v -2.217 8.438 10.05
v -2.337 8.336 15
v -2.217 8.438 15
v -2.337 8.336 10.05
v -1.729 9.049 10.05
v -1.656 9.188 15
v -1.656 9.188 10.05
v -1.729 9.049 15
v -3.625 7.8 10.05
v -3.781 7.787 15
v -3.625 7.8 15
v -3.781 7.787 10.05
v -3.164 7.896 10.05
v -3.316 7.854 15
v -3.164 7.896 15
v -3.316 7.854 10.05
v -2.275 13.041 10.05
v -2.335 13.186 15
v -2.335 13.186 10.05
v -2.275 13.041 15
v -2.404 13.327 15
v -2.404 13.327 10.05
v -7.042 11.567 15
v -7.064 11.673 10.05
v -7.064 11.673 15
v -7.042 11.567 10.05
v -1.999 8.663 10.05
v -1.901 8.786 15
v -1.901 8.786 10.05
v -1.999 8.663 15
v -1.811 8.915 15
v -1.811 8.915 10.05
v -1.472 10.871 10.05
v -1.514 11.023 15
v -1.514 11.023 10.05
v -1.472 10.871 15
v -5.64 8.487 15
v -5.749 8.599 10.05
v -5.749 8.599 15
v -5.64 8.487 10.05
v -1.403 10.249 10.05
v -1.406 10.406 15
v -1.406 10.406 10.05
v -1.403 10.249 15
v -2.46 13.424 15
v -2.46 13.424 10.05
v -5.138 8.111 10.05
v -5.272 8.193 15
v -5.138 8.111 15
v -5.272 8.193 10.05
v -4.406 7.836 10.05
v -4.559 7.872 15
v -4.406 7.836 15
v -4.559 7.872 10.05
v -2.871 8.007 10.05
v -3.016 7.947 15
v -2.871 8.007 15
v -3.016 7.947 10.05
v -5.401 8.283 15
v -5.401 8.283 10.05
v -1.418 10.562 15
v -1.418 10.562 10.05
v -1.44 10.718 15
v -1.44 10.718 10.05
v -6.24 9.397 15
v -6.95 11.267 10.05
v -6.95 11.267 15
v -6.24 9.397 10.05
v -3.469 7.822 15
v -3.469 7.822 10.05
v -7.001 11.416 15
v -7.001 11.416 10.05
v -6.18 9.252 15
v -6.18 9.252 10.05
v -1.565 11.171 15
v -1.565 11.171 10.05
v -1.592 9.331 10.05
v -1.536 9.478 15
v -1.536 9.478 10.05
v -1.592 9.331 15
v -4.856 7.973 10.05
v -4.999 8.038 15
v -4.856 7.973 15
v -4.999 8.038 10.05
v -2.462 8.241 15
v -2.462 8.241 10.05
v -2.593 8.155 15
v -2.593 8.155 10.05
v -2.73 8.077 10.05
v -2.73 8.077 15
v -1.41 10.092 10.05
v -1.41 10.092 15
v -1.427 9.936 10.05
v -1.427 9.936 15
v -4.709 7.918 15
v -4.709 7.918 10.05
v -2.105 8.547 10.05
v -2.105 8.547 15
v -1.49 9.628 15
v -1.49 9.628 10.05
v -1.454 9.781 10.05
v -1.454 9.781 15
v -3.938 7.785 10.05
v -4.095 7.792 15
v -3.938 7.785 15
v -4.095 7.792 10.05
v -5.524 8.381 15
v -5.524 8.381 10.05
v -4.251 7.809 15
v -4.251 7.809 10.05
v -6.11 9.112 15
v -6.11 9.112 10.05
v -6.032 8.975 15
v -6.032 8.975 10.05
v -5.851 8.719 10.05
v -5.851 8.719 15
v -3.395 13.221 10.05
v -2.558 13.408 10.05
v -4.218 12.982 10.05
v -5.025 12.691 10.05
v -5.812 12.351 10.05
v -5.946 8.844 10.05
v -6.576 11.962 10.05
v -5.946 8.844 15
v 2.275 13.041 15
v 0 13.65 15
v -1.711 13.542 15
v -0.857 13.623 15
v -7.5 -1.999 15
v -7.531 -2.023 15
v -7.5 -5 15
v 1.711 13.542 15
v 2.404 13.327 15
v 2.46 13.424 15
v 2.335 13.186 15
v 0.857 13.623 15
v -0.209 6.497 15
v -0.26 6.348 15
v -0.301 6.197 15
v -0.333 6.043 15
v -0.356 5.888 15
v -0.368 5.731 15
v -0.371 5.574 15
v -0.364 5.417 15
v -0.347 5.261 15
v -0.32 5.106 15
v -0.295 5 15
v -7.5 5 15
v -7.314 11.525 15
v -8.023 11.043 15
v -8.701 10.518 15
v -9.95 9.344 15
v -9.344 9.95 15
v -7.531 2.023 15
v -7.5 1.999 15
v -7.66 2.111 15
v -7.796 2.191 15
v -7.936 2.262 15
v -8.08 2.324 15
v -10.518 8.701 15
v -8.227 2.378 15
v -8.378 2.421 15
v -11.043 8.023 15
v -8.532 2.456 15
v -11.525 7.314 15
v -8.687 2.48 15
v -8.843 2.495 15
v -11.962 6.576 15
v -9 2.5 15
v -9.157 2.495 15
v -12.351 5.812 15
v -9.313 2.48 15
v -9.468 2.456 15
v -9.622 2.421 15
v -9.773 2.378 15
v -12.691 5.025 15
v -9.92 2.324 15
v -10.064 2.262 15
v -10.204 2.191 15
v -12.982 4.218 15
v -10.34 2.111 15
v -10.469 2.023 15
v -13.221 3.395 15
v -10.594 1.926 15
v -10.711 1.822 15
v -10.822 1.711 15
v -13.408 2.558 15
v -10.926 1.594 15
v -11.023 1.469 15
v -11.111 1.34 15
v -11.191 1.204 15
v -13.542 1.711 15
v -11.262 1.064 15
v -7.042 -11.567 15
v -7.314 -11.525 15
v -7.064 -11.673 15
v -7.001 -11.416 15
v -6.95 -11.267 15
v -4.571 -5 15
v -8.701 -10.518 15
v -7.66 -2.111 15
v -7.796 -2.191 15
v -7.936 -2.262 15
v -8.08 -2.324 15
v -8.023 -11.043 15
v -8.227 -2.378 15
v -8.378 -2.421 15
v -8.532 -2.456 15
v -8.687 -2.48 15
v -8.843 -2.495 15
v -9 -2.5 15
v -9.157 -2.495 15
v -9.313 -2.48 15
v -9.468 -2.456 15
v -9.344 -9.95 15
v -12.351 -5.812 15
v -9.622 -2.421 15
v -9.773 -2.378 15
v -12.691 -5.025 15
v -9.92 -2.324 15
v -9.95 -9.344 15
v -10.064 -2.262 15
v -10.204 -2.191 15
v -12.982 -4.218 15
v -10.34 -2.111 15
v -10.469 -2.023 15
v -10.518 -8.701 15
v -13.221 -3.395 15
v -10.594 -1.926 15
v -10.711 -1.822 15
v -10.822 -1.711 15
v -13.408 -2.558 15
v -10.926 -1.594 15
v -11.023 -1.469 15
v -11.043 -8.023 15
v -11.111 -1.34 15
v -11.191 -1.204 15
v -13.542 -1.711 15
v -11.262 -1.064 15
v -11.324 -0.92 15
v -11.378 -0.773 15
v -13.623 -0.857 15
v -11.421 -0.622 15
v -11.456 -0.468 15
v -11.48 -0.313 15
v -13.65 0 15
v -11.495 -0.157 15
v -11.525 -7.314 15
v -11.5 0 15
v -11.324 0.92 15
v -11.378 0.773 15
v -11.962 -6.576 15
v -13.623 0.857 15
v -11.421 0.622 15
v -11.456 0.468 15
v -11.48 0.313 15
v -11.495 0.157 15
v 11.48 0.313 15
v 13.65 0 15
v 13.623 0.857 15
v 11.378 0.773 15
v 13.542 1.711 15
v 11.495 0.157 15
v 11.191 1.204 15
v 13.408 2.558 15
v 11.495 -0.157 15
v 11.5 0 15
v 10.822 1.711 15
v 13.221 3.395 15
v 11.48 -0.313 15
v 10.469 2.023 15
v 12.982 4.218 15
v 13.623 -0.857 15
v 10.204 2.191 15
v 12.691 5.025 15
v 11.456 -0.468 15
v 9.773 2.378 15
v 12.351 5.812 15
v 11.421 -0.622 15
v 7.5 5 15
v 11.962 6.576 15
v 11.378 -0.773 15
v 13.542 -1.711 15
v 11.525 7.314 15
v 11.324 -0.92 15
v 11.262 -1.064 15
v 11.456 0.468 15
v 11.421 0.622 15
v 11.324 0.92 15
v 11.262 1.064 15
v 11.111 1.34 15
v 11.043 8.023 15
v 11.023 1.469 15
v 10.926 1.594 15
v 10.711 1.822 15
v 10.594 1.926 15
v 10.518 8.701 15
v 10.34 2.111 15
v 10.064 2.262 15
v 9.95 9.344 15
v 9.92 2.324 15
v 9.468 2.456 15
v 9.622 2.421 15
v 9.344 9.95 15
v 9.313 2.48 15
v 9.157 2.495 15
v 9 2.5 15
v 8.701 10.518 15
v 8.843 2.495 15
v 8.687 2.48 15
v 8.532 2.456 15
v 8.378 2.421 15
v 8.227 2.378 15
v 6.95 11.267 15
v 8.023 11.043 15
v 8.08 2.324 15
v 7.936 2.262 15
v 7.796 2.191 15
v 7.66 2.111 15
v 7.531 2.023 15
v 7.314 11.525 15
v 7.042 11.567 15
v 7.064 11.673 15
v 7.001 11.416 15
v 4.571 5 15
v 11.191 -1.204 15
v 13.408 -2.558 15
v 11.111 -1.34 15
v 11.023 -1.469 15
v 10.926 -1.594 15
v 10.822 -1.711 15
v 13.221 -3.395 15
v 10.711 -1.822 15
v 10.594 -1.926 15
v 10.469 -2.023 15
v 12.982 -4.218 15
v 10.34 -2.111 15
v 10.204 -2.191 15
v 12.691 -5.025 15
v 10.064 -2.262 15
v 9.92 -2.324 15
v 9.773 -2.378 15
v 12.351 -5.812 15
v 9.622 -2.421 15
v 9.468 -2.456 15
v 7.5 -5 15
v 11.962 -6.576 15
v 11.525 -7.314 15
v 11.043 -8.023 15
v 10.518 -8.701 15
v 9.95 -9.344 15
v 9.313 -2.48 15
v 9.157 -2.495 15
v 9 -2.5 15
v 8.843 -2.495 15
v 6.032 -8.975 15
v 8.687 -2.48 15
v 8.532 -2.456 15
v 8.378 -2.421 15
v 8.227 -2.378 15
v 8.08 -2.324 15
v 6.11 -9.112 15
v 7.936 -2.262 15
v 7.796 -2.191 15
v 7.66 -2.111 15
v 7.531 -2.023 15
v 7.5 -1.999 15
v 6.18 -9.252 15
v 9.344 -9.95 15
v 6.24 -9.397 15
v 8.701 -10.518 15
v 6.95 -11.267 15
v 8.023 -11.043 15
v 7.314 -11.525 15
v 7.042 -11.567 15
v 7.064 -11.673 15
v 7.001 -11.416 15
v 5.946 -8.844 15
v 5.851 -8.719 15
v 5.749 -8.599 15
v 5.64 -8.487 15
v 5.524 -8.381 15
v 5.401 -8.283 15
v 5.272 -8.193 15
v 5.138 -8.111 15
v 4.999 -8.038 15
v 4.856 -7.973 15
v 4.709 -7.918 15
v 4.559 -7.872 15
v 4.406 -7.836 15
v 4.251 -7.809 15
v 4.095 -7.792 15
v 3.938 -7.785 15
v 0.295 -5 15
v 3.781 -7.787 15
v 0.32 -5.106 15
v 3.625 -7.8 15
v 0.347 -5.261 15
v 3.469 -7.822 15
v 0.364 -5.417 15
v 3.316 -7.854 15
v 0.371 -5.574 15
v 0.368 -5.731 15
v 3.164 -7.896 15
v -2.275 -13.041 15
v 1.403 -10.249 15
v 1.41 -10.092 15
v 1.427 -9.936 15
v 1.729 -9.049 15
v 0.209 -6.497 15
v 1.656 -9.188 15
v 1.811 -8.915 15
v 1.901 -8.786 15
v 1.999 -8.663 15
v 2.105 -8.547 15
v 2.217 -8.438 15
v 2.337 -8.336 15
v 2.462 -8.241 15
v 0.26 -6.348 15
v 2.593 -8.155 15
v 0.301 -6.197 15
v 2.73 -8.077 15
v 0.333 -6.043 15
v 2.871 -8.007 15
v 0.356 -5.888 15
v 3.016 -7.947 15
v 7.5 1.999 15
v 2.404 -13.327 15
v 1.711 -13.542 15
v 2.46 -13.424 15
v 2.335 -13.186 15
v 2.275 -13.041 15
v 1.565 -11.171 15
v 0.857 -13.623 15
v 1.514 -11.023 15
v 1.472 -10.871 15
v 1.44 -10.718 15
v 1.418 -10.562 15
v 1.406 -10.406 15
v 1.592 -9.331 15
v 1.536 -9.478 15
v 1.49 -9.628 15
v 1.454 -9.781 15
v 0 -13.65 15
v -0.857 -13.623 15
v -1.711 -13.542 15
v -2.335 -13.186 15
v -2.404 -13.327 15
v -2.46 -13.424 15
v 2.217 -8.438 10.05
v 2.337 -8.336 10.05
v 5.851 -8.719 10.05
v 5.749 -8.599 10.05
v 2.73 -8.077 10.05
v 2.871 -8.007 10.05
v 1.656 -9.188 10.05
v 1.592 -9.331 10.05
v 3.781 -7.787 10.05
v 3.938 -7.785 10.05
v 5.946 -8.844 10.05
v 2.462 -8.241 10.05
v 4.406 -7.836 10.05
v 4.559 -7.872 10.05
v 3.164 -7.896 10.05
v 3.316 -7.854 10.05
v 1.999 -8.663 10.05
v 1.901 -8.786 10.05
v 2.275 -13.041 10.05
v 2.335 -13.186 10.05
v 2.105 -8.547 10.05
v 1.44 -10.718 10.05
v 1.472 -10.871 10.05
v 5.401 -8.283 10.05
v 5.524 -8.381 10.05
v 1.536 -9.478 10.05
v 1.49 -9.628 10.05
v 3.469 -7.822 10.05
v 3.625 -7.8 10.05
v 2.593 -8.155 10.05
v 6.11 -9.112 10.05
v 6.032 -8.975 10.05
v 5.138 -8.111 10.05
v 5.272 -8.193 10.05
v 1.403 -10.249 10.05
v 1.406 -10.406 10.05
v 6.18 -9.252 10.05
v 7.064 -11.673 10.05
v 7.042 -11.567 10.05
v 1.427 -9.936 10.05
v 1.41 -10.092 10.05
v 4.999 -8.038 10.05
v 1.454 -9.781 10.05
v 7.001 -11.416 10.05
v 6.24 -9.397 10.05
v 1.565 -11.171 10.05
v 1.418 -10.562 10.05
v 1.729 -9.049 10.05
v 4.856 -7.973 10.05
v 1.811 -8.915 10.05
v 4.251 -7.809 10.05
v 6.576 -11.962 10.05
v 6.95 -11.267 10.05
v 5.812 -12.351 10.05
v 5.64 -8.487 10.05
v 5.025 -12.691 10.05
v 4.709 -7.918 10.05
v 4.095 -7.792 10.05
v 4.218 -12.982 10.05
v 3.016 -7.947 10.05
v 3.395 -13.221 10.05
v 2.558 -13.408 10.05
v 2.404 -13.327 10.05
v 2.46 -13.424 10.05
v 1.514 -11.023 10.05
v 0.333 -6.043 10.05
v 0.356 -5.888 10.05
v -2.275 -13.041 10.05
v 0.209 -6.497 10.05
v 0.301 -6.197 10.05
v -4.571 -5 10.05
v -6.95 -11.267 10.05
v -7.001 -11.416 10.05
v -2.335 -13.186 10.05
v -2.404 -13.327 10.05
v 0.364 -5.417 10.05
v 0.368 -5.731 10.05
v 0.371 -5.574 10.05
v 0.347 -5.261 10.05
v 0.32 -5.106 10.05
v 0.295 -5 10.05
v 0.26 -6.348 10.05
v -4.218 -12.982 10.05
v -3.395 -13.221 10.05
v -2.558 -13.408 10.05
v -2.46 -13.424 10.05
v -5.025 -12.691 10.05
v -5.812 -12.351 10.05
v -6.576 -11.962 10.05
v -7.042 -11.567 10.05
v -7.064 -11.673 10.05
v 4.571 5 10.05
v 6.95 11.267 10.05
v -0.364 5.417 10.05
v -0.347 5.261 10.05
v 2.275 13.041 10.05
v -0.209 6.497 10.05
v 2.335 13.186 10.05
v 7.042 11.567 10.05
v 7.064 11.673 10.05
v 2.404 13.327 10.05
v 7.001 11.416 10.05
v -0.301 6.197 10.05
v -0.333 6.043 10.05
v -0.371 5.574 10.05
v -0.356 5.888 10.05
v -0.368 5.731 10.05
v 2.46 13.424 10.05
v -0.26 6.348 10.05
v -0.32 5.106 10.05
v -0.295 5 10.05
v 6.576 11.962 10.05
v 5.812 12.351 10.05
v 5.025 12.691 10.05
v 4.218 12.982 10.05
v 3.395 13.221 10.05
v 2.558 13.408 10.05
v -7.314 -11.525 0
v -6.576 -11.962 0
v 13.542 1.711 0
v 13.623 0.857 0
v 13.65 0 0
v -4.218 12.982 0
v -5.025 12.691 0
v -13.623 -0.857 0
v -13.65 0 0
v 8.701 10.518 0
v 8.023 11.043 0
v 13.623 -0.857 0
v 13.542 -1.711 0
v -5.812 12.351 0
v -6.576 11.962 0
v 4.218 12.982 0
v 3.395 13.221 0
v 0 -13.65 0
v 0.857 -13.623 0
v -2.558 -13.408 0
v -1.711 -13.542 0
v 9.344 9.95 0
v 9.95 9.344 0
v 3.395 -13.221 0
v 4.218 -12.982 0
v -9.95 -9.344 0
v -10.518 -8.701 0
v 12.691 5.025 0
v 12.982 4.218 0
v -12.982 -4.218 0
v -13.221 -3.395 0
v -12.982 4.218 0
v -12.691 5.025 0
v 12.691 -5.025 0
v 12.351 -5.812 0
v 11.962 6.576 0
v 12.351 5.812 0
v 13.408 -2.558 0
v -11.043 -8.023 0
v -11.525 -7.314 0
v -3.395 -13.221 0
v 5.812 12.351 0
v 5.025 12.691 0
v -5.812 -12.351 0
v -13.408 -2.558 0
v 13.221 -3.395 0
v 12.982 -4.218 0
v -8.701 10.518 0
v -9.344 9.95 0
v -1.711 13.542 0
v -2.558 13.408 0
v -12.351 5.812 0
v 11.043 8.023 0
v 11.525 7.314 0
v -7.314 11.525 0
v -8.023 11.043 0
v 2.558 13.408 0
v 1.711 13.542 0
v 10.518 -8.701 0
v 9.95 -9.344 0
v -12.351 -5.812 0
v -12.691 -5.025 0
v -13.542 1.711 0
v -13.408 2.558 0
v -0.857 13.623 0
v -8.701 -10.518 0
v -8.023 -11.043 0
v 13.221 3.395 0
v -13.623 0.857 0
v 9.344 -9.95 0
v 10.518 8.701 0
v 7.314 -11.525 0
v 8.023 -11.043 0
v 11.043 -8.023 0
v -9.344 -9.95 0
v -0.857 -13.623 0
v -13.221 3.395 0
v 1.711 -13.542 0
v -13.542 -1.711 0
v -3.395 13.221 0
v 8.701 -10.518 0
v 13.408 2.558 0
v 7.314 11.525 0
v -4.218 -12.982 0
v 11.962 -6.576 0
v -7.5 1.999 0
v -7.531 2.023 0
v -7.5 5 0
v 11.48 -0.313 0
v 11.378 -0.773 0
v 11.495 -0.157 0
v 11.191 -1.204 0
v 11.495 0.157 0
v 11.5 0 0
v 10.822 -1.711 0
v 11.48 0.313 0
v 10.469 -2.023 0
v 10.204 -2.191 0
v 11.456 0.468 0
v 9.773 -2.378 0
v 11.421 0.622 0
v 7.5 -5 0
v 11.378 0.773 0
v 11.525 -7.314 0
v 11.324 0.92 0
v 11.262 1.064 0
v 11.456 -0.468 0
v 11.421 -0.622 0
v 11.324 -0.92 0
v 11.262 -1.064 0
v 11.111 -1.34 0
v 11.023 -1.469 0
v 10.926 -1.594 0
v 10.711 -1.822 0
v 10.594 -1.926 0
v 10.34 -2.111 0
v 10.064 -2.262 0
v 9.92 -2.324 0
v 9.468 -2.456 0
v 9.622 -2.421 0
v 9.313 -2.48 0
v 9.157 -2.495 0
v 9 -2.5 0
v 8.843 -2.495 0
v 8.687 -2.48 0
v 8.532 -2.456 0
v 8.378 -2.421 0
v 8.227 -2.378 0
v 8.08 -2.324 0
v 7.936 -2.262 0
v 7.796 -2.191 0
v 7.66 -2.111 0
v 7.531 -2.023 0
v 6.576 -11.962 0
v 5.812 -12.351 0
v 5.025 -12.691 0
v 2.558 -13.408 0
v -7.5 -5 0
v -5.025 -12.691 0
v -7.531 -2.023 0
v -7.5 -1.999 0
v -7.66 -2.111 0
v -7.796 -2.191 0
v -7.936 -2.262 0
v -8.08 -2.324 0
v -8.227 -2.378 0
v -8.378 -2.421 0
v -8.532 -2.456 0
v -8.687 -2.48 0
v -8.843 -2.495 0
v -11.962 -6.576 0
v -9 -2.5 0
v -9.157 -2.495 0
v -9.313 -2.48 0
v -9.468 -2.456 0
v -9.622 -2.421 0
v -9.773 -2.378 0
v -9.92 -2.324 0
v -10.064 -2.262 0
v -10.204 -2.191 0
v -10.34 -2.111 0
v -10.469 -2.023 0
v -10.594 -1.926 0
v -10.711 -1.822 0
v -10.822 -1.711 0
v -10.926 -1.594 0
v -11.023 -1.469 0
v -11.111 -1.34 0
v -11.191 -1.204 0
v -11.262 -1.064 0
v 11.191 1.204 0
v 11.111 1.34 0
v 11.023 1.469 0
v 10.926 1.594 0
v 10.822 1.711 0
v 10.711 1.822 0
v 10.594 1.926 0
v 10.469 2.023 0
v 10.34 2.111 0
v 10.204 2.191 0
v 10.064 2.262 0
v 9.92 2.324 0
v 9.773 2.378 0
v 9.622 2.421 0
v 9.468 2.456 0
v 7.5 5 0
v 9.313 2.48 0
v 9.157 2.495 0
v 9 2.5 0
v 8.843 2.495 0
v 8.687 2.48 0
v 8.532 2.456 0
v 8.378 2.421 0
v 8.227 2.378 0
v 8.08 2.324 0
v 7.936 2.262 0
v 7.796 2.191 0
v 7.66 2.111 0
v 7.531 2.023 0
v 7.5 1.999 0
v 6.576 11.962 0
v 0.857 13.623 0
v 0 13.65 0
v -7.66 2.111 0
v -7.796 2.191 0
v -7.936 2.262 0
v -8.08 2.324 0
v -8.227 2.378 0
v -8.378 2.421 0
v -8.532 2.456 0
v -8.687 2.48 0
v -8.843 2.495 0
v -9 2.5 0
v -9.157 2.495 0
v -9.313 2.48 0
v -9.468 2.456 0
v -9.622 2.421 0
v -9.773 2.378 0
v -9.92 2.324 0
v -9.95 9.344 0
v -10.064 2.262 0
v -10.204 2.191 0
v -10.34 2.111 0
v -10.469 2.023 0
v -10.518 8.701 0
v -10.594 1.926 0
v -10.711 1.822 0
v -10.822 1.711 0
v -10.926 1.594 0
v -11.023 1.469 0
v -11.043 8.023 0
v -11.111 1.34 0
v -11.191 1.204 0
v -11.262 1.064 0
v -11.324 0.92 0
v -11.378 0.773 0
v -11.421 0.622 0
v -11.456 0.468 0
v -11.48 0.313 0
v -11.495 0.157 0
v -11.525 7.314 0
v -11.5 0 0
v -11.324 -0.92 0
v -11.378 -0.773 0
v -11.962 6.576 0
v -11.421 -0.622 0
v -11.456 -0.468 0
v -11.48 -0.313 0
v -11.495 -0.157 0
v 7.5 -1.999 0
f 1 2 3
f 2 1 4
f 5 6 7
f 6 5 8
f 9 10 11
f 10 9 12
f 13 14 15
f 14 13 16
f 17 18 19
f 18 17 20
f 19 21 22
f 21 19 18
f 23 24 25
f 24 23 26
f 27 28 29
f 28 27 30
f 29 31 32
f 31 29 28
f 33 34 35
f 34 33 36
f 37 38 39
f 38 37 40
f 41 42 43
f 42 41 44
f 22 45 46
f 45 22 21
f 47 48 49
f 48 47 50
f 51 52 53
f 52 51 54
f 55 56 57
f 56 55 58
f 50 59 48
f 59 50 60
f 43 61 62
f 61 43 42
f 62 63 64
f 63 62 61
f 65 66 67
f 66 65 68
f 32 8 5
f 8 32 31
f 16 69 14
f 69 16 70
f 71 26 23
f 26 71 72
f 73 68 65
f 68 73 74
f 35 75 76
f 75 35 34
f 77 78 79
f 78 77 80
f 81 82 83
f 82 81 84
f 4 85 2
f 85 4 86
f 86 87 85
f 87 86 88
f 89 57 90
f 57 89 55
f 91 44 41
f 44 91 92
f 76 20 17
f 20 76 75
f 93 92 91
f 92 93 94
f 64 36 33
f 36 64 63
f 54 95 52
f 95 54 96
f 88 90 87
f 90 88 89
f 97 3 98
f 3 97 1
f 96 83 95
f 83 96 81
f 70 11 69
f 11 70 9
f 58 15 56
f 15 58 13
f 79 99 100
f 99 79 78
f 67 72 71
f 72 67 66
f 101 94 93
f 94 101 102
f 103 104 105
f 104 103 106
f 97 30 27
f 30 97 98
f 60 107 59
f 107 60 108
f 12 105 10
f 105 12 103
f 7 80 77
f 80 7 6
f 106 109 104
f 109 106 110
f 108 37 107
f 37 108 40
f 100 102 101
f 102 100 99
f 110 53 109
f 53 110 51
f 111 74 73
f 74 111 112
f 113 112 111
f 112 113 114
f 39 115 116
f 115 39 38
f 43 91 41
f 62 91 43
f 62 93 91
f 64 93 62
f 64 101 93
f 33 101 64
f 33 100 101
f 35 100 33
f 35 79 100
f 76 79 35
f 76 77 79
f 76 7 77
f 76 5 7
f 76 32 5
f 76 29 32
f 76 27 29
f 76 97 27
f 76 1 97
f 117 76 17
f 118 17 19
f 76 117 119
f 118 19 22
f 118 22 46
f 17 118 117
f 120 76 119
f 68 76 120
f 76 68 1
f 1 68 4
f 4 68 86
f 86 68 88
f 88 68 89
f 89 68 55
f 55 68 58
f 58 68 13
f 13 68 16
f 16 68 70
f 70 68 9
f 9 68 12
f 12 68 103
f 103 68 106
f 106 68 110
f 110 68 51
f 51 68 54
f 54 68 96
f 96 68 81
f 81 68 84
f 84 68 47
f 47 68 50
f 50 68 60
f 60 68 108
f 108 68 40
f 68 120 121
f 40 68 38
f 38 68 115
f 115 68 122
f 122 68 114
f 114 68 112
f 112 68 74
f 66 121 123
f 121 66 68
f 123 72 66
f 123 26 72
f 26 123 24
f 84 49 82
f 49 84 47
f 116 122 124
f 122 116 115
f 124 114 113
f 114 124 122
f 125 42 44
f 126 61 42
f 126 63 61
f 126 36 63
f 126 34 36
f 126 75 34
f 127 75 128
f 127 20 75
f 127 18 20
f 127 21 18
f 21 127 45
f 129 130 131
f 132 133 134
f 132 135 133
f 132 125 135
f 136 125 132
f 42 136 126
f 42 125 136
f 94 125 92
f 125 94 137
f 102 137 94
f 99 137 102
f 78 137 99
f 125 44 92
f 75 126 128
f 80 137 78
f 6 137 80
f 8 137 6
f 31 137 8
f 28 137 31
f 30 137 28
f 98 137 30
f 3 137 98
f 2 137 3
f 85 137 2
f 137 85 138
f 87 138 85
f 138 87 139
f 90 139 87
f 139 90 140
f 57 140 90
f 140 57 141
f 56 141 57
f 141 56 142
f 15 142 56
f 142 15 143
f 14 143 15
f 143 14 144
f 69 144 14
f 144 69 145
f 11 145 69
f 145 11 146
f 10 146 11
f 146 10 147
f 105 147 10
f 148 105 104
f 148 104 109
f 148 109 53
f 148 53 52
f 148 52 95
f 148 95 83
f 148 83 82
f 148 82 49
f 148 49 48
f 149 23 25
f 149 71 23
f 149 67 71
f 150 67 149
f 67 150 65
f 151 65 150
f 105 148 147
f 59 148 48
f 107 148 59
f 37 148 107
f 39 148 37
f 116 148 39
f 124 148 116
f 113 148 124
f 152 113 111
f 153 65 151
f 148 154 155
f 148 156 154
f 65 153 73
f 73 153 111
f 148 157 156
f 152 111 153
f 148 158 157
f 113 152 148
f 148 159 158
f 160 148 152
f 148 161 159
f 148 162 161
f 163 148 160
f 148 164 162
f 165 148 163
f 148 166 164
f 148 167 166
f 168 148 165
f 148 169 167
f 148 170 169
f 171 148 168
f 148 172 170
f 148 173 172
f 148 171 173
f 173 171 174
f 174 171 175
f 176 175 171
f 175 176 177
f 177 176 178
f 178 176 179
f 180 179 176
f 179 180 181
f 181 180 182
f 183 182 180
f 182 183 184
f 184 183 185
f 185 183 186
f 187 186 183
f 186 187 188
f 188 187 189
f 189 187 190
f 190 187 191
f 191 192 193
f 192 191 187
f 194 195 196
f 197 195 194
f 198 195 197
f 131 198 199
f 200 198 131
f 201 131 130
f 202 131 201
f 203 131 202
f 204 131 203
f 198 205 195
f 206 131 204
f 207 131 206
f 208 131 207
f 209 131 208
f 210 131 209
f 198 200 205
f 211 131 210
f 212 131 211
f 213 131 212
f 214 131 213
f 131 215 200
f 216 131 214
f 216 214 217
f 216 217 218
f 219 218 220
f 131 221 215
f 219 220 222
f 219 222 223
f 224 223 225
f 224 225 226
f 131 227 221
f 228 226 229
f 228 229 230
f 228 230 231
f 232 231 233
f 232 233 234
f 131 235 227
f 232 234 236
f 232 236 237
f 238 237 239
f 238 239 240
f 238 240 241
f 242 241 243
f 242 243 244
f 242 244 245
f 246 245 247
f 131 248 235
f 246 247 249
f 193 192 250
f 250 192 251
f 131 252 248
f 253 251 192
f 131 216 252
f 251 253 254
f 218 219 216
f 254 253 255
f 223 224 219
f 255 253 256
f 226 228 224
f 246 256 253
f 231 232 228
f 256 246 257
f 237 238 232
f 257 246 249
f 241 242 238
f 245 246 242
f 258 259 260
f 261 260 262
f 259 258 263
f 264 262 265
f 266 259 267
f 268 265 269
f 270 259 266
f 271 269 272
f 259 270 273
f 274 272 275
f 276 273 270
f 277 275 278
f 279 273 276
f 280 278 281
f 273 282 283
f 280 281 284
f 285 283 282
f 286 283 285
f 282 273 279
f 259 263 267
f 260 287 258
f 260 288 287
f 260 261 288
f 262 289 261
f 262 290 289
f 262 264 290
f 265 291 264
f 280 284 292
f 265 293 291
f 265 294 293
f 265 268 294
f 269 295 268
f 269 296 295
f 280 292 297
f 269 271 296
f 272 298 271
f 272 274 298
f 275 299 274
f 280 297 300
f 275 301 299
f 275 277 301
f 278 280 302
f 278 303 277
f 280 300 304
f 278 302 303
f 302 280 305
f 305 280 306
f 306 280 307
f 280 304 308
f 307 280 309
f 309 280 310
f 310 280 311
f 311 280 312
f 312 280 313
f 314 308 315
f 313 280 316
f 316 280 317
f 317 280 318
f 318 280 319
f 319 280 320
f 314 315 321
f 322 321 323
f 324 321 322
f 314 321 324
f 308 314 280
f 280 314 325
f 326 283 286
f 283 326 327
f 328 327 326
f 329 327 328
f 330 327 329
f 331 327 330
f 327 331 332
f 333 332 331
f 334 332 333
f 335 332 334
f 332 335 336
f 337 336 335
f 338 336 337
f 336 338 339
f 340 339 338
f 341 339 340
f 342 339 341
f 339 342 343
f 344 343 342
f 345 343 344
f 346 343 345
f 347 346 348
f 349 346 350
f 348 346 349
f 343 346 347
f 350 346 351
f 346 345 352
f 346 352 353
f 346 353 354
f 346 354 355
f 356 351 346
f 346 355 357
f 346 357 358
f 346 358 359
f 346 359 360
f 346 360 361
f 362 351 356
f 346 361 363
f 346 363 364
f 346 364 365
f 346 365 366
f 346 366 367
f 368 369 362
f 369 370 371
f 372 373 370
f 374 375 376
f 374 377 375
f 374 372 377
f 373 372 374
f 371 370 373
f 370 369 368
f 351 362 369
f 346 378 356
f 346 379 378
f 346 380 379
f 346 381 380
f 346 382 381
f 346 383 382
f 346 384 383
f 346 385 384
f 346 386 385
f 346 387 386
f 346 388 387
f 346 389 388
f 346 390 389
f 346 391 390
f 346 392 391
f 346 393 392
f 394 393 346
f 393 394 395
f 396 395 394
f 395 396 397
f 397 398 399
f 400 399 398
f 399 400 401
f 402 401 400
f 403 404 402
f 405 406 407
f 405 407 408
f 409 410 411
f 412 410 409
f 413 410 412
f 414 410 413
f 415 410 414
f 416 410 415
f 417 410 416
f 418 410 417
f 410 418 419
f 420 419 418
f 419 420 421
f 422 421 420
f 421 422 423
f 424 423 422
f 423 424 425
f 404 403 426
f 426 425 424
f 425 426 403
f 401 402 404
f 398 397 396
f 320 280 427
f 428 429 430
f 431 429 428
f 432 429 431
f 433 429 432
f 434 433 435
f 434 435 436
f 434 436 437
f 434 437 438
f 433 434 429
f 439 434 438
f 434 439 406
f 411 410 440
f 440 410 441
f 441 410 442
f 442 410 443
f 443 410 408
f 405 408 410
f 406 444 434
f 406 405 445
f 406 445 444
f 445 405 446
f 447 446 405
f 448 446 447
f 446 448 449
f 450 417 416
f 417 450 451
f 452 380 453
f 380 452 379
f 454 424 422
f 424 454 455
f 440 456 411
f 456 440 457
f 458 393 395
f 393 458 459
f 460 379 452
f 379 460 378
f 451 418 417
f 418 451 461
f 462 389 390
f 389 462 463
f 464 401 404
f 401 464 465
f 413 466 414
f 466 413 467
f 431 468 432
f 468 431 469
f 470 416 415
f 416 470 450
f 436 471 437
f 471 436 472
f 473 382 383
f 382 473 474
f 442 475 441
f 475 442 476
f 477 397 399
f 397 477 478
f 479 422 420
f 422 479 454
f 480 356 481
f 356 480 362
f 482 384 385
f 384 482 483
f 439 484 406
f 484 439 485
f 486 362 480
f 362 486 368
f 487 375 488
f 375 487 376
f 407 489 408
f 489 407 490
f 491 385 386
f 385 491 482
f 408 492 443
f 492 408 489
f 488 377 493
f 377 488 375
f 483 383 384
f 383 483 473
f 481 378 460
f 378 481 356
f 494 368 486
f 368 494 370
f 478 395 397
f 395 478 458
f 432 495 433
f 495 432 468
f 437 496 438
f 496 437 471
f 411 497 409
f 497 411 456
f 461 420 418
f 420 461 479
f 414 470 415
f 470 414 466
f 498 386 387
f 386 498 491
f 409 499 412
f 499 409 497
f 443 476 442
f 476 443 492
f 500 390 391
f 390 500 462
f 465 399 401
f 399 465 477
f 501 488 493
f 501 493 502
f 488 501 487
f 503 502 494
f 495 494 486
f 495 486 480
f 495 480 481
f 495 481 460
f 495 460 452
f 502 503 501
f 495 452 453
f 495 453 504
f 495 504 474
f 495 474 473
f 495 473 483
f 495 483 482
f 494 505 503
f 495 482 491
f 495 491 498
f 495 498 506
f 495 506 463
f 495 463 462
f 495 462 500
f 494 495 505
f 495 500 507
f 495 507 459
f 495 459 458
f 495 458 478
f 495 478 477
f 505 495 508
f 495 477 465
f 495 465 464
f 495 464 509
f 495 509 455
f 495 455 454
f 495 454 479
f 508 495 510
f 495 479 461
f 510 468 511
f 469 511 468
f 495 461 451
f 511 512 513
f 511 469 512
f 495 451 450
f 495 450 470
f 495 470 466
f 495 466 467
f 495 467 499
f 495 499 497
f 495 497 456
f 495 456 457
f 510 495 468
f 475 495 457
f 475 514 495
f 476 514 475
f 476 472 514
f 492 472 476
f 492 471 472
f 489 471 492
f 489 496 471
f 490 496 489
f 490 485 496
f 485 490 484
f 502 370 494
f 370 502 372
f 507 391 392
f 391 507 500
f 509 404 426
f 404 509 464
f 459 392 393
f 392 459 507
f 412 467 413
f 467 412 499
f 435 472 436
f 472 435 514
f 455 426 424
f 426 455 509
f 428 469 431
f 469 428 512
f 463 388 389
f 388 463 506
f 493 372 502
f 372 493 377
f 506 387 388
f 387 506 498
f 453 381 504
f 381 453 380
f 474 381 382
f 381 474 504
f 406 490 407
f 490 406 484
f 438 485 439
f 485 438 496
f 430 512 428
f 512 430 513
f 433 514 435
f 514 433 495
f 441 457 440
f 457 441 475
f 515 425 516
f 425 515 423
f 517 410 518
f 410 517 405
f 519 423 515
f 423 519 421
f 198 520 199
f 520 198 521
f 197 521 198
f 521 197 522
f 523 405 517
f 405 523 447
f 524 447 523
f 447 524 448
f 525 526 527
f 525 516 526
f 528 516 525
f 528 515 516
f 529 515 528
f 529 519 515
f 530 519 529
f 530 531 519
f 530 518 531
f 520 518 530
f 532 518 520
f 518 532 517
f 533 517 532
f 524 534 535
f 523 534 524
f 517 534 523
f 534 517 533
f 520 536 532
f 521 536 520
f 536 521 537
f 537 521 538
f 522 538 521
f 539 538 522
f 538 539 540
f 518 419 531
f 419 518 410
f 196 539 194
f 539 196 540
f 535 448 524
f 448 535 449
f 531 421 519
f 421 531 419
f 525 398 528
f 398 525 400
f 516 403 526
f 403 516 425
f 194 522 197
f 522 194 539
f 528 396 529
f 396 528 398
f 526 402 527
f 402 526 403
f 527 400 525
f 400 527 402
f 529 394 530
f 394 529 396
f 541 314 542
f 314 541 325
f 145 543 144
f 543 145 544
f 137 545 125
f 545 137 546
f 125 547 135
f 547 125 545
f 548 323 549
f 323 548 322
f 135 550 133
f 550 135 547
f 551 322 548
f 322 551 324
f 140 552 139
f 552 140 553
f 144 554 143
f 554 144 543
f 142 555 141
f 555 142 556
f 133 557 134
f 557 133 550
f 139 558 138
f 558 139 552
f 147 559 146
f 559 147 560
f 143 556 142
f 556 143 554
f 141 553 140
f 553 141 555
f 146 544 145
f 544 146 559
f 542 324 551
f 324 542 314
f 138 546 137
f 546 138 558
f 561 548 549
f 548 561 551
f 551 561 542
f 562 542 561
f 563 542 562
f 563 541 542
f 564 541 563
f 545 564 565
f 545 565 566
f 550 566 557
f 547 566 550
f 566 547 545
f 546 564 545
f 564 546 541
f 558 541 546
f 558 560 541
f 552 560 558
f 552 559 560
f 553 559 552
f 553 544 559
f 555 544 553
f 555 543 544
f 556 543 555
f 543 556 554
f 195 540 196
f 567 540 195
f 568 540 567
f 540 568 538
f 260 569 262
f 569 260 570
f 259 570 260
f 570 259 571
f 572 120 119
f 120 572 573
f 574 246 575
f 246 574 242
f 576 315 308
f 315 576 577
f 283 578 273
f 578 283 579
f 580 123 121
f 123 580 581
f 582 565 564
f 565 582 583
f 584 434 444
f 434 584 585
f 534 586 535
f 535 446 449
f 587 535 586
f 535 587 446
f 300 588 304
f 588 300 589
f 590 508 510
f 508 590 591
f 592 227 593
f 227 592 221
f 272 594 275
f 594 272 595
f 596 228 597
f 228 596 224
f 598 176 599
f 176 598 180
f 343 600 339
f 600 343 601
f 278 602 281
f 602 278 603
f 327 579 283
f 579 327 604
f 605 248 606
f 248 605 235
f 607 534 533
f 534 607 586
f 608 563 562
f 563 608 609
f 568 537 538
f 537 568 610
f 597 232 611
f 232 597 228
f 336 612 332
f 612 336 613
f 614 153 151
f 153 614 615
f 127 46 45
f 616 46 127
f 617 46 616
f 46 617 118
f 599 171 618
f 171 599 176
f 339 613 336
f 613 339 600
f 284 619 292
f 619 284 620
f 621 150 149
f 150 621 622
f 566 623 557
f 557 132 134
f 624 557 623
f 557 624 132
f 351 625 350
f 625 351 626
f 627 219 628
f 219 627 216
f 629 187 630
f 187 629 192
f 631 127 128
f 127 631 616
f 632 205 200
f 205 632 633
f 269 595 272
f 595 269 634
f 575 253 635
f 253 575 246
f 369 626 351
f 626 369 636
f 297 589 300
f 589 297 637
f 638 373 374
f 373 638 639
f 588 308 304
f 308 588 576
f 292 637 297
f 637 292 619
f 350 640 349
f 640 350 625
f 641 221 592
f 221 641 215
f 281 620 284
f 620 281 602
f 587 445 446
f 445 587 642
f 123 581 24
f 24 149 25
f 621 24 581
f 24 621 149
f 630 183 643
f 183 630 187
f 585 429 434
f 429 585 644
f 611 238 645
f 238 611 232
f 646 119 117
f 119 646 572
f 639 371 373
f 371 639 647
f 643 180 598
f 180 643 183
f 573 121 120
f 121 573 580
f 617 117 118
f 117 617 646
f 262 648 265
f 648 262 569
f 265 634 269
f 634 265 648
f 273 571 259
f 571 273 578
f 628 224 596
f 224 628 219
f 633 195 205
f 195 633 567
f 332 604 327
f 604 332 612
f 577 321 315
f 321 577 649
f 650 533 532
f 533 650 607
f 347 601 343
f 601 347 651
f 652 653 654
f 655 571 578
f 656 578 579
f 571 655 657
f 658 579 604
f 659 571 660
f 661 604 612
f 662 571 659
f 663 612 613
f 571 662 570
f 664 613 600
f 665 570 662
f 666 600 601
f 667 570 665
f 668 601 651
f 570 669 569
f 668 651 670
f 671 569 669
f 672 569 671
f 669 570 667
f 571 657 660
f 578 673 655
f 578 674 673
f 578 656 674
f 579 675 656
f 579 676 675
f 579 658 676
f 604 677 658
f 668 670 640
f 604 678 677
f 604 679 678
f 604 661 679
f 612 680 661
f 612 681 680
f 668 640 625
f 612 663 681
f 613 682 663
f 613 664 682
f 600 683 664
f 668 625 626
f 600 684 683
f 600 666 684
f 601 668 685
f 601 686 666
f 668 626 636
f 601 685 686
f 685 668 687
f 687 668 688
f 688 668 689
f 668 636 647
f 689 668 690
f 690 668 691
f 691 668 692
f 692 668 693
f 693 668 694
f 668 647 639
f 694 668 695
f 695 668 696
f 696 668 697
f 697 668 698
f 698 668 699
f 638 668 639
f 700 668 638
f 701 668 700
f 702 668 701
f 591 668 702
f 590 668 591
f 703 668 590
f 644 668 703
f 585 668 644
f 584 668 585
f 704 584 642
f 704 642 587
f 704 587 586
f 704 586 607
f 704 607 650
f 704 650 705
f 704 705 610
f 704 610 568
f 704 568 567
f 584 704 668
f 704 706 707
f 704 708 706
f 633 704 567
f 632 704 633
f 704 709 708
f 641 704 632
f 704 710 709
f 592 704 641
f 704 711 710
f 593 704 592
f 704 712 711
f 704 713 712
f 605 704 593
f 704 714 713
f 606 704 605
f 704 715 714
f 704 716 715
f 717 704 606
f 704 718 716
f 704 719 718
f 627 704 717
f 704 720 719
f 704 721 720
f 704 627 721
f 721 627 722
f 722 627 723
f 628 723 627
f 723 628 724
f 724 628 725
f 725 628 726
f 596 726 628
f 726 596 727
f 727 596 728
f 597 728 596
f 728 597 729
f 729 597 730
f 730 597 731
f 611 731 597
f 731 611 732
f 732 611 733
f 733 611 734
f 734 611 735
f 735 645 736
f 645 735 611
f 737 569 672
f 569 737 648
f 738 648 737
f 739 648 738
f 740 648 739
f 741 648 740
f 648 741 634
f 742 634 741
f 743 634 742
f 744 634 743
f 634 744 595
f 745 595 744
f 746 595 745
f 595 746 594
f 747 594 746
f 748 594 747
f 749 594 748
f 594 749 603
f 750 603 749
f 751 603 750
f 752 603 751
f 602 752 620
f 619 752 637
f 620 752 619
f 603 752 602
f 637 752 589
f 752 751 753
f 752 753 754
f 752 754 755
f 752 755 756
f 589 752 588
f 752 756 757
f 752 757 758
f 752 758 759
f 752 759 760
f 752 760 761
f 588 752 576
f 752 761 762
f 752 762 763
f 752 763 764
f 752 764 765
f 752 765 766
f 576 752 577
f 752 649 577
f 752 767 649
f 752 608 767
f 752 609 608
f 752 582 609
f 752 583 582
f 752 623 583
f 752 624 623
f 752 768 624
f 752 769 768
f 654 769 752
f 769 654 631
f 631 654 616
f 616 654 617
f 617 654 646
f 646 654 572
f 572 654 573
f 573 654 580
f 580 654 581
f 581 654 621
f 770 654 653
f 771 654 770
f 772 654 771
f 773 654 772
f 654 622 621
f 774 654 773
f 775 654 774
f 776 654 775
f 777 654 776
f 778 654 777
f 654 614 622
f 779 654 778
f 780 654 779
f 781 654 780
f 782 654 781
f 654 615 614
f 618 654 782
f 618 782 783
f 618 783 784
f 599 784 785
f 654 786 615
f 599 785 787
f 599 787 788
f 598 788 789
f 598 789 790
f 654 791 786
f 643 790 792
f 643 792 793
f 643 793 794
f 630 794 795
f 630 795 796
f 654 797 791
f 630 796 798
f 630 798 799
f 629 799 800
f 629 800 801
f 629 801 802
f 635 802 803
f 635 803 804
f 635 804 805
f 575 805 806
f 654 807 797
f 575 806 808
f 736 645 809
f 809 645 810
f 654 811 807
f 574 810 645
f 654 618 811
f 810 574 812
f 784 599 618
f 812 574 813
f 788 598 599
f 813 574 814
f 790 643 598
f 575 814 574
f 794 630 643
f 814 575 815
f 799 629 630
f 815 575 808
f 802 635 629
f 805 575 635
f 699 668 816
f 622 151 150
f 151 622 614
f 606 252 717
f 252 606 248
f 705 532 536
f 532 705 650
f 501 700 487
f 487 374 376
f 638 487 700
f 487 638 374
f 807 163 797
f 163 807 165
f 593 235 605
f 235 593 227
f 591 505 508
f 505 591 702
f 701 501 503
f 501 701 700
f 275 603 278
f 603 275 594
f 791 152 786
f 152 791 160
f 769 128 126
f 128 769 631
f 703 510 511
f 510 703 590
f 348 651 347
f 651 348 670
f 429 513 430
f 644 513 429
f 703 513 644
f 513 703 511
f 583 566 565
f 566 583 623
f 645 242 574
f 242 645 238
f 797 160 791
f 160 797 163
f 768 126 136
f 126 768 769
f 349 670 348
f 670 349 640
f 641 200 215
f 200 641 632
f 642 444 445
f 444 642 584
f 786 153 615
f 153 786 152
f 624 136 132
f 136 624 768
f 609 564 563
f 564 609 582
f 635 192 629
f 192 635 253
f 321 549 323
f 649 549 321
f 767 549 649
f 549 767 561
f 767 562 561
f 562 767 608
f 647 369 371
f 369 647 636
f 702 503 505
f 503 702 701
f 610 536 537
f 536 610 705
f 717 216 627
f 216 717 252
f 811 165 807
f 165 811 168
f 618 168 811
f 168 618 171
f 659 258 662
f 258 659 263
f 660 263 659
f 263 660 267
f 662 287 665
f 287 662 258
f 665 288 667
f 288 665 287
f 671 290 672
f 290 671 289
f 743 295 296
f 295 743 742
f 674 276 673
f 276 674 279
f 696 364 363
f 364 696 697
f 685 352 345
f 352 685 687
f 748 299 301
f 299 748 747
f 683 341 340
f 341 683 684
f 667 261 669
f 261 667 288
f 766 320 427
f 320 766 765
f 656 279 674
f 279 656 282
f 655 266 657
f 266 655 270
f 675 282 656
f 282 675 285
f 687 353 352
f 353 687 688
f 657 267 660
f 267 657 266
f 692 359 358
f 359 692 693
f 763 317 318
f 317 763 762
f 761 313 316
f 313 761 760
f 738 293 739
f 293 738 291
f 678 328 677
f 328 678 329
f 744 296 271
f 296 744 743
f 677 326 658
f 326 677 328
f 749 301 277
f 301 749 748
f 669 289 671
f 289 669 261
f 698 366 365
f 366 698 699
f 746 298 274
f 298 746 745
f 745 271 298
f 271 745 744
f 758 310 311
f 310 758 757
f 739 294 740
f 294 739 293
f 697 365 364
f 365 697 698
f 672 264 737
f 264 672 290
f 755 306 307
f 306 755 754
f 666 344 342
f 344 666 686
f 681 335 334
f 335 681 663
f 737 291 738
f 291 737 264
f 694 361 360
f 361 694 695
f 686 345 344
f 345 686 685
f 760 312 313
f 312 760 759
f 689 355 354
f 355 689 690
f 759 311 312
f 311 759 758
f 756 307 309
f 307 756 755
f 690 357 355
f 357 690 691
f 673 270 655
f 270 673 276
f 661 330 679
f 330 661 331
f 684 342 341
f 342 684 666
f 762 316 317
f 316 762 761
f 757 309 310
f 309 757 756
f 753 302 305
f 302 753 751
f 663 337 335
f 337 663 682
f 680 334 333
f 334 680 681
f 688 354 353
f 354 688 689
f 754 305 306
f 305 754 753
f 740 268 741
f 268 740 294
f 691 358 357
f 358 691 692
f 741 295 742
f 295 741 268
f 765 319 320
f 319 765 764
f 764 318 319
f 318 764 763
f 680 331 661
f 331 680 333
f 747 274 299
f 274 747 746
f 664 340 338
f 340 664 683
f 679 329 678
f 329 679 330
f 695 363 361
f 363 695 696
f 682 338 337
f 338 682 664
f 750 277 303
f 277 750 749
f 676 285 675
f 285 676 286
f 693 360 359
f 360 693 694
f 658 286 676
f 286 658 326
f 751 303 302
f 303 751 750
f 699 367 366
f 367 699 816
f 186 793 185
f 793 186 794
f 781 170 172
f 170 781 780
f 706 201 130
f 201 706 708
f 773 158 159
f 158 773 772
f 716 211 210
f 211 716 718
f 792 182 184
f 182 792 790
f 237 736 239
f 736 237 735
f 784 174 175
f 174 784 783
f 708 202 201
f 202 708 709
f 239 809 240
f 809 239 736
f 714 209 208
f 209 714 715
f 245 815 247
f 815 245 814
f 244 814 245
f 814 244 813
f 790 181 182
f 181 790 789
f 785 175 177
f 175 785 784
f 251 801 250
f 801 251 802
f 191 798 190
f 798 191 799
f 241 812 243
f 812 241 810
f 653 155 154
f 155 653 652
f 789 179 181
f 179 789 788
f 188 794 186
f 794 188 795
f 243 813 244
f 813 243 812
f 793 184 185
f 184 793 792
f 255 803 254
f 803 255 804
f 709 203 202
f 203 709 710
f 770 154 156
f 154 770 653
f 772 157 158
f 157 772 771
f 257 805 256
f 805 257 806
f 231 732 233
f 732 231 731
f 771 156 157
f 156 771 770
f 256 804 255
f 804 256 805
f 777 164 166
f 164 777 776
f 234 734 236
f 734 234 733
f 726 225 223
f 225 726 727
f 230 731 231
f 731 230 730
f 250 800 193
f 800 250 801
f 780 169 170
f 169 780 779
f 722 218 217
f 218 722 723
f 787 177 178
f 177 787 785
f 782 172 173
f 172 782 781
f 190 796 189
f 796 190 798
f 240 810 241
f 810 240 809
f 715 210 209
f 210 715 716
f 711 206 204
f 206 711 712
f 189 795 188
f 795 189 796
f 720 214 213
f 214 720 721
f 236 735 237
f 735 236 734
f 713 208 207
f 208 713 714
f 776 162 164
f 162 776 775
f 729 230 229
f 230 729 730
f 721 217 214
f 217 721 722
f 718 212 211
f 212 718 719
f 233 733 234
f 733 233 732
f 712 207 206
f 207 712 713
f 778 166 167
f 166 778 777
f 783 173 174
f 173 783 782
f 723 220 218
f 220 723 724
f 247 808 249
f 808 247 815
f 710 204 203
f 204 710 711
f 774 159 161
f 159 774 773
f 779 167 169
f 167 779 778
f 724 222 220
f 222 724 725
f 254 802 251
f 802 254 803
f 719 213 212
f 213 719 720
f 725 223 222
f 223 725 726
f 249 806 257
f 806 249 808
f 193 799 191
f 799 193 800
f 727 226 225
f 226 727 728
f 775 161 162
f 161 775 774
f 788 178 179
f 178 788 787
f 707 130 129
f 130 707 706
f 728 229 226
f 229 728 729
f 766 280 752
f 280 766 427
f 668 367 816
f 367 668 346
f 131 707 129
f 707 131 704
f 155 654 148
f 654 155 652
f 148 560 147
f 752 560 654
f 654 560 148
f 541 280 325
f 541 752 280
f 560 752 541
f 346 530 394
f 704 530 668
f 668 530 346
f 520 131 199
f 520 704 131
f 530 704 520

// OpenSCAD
include <../references.scad>

Tube_length = 15;
Tube_diameter = 27.3;
Hole_diameter = 5;


//Big_outter_diameter = 51.7;
//Big_inner_diameter = 51.7;
//Little_outter_diameter = 41.78;
//Little_inner_diameter = 28.4;
//Side_length = 20.4;
//Hole_for_screw_diameter = 6;
//Holding_stem_diameter = 10;
//Holding_plate_height = Holding_stem_diameter + 4;



module support(){
    rotate([0,0,0]){
            color("green")cylinder(h=Tube_length, d=Tube_diameter , $fn=100);
    }
}

module holes(position_x,position_y,position_z,percentage_of_length){
    translate([position_x,position_y,position_z]){
        color("blue")cylinder(h=Tube_length*(percentage_of_length/100), d=Hole_diameter , $fn=100);
    }
}

module switch_square(){
    translate([-SW_length_PT/2,-SW_width_PT/2,0]){
        color("purple")cube([SW_length_PT,SW_width_PT,SW_height_PT]);
    }}

module holes_for_cables(position_x,position_y,position_z){
    translate([position_x,position_y,position_z]){
        rotate([0,-90,0]){
            color("brown")cylinder(h=Tube_diameter, d=Hole_diameter , $fn=100);
        }
    }
}

difference(){
    support();
    holes(9,0,0,100);
    holes(-9,0,0,100);
    switch_square();

    rotate([0,0,110.78]){
//    holes_for_cables(14,0,Tube_length/2);
        color("red"){
            hull(){
                holes(11,0,Tube_length-(Tube_length*(33/100)),33);
                holes(13,0,Tube_length-(Tube_length*(33/100)),33);
                }
            hull(){
                holes(-11,0,Tube_length-(Tube_length*(33/100)),33);
                holes(-13,0,Tube_length-(Tube_length*(33/100)),33);
                }
        }
    }
    rotate([0,0,-110.78]){
        color("pink"){
            hull(){
                holes(6,0,Tube_length-(Tube_length*(33/100)),33);
                holes(13,0,Tube_length-(Tube_length*(33/100)),33);
                }
            hull(){
                holes(-6,0,Tube_length-(Tube_length*(33/100)),33);
                holes(-13,0,Tube_length-(Tube_length*(33/100)),33);
                }
        }
    }


}

//was :                 holes(11,0,Tube_length-(Tube_length*(33/100)),33);
